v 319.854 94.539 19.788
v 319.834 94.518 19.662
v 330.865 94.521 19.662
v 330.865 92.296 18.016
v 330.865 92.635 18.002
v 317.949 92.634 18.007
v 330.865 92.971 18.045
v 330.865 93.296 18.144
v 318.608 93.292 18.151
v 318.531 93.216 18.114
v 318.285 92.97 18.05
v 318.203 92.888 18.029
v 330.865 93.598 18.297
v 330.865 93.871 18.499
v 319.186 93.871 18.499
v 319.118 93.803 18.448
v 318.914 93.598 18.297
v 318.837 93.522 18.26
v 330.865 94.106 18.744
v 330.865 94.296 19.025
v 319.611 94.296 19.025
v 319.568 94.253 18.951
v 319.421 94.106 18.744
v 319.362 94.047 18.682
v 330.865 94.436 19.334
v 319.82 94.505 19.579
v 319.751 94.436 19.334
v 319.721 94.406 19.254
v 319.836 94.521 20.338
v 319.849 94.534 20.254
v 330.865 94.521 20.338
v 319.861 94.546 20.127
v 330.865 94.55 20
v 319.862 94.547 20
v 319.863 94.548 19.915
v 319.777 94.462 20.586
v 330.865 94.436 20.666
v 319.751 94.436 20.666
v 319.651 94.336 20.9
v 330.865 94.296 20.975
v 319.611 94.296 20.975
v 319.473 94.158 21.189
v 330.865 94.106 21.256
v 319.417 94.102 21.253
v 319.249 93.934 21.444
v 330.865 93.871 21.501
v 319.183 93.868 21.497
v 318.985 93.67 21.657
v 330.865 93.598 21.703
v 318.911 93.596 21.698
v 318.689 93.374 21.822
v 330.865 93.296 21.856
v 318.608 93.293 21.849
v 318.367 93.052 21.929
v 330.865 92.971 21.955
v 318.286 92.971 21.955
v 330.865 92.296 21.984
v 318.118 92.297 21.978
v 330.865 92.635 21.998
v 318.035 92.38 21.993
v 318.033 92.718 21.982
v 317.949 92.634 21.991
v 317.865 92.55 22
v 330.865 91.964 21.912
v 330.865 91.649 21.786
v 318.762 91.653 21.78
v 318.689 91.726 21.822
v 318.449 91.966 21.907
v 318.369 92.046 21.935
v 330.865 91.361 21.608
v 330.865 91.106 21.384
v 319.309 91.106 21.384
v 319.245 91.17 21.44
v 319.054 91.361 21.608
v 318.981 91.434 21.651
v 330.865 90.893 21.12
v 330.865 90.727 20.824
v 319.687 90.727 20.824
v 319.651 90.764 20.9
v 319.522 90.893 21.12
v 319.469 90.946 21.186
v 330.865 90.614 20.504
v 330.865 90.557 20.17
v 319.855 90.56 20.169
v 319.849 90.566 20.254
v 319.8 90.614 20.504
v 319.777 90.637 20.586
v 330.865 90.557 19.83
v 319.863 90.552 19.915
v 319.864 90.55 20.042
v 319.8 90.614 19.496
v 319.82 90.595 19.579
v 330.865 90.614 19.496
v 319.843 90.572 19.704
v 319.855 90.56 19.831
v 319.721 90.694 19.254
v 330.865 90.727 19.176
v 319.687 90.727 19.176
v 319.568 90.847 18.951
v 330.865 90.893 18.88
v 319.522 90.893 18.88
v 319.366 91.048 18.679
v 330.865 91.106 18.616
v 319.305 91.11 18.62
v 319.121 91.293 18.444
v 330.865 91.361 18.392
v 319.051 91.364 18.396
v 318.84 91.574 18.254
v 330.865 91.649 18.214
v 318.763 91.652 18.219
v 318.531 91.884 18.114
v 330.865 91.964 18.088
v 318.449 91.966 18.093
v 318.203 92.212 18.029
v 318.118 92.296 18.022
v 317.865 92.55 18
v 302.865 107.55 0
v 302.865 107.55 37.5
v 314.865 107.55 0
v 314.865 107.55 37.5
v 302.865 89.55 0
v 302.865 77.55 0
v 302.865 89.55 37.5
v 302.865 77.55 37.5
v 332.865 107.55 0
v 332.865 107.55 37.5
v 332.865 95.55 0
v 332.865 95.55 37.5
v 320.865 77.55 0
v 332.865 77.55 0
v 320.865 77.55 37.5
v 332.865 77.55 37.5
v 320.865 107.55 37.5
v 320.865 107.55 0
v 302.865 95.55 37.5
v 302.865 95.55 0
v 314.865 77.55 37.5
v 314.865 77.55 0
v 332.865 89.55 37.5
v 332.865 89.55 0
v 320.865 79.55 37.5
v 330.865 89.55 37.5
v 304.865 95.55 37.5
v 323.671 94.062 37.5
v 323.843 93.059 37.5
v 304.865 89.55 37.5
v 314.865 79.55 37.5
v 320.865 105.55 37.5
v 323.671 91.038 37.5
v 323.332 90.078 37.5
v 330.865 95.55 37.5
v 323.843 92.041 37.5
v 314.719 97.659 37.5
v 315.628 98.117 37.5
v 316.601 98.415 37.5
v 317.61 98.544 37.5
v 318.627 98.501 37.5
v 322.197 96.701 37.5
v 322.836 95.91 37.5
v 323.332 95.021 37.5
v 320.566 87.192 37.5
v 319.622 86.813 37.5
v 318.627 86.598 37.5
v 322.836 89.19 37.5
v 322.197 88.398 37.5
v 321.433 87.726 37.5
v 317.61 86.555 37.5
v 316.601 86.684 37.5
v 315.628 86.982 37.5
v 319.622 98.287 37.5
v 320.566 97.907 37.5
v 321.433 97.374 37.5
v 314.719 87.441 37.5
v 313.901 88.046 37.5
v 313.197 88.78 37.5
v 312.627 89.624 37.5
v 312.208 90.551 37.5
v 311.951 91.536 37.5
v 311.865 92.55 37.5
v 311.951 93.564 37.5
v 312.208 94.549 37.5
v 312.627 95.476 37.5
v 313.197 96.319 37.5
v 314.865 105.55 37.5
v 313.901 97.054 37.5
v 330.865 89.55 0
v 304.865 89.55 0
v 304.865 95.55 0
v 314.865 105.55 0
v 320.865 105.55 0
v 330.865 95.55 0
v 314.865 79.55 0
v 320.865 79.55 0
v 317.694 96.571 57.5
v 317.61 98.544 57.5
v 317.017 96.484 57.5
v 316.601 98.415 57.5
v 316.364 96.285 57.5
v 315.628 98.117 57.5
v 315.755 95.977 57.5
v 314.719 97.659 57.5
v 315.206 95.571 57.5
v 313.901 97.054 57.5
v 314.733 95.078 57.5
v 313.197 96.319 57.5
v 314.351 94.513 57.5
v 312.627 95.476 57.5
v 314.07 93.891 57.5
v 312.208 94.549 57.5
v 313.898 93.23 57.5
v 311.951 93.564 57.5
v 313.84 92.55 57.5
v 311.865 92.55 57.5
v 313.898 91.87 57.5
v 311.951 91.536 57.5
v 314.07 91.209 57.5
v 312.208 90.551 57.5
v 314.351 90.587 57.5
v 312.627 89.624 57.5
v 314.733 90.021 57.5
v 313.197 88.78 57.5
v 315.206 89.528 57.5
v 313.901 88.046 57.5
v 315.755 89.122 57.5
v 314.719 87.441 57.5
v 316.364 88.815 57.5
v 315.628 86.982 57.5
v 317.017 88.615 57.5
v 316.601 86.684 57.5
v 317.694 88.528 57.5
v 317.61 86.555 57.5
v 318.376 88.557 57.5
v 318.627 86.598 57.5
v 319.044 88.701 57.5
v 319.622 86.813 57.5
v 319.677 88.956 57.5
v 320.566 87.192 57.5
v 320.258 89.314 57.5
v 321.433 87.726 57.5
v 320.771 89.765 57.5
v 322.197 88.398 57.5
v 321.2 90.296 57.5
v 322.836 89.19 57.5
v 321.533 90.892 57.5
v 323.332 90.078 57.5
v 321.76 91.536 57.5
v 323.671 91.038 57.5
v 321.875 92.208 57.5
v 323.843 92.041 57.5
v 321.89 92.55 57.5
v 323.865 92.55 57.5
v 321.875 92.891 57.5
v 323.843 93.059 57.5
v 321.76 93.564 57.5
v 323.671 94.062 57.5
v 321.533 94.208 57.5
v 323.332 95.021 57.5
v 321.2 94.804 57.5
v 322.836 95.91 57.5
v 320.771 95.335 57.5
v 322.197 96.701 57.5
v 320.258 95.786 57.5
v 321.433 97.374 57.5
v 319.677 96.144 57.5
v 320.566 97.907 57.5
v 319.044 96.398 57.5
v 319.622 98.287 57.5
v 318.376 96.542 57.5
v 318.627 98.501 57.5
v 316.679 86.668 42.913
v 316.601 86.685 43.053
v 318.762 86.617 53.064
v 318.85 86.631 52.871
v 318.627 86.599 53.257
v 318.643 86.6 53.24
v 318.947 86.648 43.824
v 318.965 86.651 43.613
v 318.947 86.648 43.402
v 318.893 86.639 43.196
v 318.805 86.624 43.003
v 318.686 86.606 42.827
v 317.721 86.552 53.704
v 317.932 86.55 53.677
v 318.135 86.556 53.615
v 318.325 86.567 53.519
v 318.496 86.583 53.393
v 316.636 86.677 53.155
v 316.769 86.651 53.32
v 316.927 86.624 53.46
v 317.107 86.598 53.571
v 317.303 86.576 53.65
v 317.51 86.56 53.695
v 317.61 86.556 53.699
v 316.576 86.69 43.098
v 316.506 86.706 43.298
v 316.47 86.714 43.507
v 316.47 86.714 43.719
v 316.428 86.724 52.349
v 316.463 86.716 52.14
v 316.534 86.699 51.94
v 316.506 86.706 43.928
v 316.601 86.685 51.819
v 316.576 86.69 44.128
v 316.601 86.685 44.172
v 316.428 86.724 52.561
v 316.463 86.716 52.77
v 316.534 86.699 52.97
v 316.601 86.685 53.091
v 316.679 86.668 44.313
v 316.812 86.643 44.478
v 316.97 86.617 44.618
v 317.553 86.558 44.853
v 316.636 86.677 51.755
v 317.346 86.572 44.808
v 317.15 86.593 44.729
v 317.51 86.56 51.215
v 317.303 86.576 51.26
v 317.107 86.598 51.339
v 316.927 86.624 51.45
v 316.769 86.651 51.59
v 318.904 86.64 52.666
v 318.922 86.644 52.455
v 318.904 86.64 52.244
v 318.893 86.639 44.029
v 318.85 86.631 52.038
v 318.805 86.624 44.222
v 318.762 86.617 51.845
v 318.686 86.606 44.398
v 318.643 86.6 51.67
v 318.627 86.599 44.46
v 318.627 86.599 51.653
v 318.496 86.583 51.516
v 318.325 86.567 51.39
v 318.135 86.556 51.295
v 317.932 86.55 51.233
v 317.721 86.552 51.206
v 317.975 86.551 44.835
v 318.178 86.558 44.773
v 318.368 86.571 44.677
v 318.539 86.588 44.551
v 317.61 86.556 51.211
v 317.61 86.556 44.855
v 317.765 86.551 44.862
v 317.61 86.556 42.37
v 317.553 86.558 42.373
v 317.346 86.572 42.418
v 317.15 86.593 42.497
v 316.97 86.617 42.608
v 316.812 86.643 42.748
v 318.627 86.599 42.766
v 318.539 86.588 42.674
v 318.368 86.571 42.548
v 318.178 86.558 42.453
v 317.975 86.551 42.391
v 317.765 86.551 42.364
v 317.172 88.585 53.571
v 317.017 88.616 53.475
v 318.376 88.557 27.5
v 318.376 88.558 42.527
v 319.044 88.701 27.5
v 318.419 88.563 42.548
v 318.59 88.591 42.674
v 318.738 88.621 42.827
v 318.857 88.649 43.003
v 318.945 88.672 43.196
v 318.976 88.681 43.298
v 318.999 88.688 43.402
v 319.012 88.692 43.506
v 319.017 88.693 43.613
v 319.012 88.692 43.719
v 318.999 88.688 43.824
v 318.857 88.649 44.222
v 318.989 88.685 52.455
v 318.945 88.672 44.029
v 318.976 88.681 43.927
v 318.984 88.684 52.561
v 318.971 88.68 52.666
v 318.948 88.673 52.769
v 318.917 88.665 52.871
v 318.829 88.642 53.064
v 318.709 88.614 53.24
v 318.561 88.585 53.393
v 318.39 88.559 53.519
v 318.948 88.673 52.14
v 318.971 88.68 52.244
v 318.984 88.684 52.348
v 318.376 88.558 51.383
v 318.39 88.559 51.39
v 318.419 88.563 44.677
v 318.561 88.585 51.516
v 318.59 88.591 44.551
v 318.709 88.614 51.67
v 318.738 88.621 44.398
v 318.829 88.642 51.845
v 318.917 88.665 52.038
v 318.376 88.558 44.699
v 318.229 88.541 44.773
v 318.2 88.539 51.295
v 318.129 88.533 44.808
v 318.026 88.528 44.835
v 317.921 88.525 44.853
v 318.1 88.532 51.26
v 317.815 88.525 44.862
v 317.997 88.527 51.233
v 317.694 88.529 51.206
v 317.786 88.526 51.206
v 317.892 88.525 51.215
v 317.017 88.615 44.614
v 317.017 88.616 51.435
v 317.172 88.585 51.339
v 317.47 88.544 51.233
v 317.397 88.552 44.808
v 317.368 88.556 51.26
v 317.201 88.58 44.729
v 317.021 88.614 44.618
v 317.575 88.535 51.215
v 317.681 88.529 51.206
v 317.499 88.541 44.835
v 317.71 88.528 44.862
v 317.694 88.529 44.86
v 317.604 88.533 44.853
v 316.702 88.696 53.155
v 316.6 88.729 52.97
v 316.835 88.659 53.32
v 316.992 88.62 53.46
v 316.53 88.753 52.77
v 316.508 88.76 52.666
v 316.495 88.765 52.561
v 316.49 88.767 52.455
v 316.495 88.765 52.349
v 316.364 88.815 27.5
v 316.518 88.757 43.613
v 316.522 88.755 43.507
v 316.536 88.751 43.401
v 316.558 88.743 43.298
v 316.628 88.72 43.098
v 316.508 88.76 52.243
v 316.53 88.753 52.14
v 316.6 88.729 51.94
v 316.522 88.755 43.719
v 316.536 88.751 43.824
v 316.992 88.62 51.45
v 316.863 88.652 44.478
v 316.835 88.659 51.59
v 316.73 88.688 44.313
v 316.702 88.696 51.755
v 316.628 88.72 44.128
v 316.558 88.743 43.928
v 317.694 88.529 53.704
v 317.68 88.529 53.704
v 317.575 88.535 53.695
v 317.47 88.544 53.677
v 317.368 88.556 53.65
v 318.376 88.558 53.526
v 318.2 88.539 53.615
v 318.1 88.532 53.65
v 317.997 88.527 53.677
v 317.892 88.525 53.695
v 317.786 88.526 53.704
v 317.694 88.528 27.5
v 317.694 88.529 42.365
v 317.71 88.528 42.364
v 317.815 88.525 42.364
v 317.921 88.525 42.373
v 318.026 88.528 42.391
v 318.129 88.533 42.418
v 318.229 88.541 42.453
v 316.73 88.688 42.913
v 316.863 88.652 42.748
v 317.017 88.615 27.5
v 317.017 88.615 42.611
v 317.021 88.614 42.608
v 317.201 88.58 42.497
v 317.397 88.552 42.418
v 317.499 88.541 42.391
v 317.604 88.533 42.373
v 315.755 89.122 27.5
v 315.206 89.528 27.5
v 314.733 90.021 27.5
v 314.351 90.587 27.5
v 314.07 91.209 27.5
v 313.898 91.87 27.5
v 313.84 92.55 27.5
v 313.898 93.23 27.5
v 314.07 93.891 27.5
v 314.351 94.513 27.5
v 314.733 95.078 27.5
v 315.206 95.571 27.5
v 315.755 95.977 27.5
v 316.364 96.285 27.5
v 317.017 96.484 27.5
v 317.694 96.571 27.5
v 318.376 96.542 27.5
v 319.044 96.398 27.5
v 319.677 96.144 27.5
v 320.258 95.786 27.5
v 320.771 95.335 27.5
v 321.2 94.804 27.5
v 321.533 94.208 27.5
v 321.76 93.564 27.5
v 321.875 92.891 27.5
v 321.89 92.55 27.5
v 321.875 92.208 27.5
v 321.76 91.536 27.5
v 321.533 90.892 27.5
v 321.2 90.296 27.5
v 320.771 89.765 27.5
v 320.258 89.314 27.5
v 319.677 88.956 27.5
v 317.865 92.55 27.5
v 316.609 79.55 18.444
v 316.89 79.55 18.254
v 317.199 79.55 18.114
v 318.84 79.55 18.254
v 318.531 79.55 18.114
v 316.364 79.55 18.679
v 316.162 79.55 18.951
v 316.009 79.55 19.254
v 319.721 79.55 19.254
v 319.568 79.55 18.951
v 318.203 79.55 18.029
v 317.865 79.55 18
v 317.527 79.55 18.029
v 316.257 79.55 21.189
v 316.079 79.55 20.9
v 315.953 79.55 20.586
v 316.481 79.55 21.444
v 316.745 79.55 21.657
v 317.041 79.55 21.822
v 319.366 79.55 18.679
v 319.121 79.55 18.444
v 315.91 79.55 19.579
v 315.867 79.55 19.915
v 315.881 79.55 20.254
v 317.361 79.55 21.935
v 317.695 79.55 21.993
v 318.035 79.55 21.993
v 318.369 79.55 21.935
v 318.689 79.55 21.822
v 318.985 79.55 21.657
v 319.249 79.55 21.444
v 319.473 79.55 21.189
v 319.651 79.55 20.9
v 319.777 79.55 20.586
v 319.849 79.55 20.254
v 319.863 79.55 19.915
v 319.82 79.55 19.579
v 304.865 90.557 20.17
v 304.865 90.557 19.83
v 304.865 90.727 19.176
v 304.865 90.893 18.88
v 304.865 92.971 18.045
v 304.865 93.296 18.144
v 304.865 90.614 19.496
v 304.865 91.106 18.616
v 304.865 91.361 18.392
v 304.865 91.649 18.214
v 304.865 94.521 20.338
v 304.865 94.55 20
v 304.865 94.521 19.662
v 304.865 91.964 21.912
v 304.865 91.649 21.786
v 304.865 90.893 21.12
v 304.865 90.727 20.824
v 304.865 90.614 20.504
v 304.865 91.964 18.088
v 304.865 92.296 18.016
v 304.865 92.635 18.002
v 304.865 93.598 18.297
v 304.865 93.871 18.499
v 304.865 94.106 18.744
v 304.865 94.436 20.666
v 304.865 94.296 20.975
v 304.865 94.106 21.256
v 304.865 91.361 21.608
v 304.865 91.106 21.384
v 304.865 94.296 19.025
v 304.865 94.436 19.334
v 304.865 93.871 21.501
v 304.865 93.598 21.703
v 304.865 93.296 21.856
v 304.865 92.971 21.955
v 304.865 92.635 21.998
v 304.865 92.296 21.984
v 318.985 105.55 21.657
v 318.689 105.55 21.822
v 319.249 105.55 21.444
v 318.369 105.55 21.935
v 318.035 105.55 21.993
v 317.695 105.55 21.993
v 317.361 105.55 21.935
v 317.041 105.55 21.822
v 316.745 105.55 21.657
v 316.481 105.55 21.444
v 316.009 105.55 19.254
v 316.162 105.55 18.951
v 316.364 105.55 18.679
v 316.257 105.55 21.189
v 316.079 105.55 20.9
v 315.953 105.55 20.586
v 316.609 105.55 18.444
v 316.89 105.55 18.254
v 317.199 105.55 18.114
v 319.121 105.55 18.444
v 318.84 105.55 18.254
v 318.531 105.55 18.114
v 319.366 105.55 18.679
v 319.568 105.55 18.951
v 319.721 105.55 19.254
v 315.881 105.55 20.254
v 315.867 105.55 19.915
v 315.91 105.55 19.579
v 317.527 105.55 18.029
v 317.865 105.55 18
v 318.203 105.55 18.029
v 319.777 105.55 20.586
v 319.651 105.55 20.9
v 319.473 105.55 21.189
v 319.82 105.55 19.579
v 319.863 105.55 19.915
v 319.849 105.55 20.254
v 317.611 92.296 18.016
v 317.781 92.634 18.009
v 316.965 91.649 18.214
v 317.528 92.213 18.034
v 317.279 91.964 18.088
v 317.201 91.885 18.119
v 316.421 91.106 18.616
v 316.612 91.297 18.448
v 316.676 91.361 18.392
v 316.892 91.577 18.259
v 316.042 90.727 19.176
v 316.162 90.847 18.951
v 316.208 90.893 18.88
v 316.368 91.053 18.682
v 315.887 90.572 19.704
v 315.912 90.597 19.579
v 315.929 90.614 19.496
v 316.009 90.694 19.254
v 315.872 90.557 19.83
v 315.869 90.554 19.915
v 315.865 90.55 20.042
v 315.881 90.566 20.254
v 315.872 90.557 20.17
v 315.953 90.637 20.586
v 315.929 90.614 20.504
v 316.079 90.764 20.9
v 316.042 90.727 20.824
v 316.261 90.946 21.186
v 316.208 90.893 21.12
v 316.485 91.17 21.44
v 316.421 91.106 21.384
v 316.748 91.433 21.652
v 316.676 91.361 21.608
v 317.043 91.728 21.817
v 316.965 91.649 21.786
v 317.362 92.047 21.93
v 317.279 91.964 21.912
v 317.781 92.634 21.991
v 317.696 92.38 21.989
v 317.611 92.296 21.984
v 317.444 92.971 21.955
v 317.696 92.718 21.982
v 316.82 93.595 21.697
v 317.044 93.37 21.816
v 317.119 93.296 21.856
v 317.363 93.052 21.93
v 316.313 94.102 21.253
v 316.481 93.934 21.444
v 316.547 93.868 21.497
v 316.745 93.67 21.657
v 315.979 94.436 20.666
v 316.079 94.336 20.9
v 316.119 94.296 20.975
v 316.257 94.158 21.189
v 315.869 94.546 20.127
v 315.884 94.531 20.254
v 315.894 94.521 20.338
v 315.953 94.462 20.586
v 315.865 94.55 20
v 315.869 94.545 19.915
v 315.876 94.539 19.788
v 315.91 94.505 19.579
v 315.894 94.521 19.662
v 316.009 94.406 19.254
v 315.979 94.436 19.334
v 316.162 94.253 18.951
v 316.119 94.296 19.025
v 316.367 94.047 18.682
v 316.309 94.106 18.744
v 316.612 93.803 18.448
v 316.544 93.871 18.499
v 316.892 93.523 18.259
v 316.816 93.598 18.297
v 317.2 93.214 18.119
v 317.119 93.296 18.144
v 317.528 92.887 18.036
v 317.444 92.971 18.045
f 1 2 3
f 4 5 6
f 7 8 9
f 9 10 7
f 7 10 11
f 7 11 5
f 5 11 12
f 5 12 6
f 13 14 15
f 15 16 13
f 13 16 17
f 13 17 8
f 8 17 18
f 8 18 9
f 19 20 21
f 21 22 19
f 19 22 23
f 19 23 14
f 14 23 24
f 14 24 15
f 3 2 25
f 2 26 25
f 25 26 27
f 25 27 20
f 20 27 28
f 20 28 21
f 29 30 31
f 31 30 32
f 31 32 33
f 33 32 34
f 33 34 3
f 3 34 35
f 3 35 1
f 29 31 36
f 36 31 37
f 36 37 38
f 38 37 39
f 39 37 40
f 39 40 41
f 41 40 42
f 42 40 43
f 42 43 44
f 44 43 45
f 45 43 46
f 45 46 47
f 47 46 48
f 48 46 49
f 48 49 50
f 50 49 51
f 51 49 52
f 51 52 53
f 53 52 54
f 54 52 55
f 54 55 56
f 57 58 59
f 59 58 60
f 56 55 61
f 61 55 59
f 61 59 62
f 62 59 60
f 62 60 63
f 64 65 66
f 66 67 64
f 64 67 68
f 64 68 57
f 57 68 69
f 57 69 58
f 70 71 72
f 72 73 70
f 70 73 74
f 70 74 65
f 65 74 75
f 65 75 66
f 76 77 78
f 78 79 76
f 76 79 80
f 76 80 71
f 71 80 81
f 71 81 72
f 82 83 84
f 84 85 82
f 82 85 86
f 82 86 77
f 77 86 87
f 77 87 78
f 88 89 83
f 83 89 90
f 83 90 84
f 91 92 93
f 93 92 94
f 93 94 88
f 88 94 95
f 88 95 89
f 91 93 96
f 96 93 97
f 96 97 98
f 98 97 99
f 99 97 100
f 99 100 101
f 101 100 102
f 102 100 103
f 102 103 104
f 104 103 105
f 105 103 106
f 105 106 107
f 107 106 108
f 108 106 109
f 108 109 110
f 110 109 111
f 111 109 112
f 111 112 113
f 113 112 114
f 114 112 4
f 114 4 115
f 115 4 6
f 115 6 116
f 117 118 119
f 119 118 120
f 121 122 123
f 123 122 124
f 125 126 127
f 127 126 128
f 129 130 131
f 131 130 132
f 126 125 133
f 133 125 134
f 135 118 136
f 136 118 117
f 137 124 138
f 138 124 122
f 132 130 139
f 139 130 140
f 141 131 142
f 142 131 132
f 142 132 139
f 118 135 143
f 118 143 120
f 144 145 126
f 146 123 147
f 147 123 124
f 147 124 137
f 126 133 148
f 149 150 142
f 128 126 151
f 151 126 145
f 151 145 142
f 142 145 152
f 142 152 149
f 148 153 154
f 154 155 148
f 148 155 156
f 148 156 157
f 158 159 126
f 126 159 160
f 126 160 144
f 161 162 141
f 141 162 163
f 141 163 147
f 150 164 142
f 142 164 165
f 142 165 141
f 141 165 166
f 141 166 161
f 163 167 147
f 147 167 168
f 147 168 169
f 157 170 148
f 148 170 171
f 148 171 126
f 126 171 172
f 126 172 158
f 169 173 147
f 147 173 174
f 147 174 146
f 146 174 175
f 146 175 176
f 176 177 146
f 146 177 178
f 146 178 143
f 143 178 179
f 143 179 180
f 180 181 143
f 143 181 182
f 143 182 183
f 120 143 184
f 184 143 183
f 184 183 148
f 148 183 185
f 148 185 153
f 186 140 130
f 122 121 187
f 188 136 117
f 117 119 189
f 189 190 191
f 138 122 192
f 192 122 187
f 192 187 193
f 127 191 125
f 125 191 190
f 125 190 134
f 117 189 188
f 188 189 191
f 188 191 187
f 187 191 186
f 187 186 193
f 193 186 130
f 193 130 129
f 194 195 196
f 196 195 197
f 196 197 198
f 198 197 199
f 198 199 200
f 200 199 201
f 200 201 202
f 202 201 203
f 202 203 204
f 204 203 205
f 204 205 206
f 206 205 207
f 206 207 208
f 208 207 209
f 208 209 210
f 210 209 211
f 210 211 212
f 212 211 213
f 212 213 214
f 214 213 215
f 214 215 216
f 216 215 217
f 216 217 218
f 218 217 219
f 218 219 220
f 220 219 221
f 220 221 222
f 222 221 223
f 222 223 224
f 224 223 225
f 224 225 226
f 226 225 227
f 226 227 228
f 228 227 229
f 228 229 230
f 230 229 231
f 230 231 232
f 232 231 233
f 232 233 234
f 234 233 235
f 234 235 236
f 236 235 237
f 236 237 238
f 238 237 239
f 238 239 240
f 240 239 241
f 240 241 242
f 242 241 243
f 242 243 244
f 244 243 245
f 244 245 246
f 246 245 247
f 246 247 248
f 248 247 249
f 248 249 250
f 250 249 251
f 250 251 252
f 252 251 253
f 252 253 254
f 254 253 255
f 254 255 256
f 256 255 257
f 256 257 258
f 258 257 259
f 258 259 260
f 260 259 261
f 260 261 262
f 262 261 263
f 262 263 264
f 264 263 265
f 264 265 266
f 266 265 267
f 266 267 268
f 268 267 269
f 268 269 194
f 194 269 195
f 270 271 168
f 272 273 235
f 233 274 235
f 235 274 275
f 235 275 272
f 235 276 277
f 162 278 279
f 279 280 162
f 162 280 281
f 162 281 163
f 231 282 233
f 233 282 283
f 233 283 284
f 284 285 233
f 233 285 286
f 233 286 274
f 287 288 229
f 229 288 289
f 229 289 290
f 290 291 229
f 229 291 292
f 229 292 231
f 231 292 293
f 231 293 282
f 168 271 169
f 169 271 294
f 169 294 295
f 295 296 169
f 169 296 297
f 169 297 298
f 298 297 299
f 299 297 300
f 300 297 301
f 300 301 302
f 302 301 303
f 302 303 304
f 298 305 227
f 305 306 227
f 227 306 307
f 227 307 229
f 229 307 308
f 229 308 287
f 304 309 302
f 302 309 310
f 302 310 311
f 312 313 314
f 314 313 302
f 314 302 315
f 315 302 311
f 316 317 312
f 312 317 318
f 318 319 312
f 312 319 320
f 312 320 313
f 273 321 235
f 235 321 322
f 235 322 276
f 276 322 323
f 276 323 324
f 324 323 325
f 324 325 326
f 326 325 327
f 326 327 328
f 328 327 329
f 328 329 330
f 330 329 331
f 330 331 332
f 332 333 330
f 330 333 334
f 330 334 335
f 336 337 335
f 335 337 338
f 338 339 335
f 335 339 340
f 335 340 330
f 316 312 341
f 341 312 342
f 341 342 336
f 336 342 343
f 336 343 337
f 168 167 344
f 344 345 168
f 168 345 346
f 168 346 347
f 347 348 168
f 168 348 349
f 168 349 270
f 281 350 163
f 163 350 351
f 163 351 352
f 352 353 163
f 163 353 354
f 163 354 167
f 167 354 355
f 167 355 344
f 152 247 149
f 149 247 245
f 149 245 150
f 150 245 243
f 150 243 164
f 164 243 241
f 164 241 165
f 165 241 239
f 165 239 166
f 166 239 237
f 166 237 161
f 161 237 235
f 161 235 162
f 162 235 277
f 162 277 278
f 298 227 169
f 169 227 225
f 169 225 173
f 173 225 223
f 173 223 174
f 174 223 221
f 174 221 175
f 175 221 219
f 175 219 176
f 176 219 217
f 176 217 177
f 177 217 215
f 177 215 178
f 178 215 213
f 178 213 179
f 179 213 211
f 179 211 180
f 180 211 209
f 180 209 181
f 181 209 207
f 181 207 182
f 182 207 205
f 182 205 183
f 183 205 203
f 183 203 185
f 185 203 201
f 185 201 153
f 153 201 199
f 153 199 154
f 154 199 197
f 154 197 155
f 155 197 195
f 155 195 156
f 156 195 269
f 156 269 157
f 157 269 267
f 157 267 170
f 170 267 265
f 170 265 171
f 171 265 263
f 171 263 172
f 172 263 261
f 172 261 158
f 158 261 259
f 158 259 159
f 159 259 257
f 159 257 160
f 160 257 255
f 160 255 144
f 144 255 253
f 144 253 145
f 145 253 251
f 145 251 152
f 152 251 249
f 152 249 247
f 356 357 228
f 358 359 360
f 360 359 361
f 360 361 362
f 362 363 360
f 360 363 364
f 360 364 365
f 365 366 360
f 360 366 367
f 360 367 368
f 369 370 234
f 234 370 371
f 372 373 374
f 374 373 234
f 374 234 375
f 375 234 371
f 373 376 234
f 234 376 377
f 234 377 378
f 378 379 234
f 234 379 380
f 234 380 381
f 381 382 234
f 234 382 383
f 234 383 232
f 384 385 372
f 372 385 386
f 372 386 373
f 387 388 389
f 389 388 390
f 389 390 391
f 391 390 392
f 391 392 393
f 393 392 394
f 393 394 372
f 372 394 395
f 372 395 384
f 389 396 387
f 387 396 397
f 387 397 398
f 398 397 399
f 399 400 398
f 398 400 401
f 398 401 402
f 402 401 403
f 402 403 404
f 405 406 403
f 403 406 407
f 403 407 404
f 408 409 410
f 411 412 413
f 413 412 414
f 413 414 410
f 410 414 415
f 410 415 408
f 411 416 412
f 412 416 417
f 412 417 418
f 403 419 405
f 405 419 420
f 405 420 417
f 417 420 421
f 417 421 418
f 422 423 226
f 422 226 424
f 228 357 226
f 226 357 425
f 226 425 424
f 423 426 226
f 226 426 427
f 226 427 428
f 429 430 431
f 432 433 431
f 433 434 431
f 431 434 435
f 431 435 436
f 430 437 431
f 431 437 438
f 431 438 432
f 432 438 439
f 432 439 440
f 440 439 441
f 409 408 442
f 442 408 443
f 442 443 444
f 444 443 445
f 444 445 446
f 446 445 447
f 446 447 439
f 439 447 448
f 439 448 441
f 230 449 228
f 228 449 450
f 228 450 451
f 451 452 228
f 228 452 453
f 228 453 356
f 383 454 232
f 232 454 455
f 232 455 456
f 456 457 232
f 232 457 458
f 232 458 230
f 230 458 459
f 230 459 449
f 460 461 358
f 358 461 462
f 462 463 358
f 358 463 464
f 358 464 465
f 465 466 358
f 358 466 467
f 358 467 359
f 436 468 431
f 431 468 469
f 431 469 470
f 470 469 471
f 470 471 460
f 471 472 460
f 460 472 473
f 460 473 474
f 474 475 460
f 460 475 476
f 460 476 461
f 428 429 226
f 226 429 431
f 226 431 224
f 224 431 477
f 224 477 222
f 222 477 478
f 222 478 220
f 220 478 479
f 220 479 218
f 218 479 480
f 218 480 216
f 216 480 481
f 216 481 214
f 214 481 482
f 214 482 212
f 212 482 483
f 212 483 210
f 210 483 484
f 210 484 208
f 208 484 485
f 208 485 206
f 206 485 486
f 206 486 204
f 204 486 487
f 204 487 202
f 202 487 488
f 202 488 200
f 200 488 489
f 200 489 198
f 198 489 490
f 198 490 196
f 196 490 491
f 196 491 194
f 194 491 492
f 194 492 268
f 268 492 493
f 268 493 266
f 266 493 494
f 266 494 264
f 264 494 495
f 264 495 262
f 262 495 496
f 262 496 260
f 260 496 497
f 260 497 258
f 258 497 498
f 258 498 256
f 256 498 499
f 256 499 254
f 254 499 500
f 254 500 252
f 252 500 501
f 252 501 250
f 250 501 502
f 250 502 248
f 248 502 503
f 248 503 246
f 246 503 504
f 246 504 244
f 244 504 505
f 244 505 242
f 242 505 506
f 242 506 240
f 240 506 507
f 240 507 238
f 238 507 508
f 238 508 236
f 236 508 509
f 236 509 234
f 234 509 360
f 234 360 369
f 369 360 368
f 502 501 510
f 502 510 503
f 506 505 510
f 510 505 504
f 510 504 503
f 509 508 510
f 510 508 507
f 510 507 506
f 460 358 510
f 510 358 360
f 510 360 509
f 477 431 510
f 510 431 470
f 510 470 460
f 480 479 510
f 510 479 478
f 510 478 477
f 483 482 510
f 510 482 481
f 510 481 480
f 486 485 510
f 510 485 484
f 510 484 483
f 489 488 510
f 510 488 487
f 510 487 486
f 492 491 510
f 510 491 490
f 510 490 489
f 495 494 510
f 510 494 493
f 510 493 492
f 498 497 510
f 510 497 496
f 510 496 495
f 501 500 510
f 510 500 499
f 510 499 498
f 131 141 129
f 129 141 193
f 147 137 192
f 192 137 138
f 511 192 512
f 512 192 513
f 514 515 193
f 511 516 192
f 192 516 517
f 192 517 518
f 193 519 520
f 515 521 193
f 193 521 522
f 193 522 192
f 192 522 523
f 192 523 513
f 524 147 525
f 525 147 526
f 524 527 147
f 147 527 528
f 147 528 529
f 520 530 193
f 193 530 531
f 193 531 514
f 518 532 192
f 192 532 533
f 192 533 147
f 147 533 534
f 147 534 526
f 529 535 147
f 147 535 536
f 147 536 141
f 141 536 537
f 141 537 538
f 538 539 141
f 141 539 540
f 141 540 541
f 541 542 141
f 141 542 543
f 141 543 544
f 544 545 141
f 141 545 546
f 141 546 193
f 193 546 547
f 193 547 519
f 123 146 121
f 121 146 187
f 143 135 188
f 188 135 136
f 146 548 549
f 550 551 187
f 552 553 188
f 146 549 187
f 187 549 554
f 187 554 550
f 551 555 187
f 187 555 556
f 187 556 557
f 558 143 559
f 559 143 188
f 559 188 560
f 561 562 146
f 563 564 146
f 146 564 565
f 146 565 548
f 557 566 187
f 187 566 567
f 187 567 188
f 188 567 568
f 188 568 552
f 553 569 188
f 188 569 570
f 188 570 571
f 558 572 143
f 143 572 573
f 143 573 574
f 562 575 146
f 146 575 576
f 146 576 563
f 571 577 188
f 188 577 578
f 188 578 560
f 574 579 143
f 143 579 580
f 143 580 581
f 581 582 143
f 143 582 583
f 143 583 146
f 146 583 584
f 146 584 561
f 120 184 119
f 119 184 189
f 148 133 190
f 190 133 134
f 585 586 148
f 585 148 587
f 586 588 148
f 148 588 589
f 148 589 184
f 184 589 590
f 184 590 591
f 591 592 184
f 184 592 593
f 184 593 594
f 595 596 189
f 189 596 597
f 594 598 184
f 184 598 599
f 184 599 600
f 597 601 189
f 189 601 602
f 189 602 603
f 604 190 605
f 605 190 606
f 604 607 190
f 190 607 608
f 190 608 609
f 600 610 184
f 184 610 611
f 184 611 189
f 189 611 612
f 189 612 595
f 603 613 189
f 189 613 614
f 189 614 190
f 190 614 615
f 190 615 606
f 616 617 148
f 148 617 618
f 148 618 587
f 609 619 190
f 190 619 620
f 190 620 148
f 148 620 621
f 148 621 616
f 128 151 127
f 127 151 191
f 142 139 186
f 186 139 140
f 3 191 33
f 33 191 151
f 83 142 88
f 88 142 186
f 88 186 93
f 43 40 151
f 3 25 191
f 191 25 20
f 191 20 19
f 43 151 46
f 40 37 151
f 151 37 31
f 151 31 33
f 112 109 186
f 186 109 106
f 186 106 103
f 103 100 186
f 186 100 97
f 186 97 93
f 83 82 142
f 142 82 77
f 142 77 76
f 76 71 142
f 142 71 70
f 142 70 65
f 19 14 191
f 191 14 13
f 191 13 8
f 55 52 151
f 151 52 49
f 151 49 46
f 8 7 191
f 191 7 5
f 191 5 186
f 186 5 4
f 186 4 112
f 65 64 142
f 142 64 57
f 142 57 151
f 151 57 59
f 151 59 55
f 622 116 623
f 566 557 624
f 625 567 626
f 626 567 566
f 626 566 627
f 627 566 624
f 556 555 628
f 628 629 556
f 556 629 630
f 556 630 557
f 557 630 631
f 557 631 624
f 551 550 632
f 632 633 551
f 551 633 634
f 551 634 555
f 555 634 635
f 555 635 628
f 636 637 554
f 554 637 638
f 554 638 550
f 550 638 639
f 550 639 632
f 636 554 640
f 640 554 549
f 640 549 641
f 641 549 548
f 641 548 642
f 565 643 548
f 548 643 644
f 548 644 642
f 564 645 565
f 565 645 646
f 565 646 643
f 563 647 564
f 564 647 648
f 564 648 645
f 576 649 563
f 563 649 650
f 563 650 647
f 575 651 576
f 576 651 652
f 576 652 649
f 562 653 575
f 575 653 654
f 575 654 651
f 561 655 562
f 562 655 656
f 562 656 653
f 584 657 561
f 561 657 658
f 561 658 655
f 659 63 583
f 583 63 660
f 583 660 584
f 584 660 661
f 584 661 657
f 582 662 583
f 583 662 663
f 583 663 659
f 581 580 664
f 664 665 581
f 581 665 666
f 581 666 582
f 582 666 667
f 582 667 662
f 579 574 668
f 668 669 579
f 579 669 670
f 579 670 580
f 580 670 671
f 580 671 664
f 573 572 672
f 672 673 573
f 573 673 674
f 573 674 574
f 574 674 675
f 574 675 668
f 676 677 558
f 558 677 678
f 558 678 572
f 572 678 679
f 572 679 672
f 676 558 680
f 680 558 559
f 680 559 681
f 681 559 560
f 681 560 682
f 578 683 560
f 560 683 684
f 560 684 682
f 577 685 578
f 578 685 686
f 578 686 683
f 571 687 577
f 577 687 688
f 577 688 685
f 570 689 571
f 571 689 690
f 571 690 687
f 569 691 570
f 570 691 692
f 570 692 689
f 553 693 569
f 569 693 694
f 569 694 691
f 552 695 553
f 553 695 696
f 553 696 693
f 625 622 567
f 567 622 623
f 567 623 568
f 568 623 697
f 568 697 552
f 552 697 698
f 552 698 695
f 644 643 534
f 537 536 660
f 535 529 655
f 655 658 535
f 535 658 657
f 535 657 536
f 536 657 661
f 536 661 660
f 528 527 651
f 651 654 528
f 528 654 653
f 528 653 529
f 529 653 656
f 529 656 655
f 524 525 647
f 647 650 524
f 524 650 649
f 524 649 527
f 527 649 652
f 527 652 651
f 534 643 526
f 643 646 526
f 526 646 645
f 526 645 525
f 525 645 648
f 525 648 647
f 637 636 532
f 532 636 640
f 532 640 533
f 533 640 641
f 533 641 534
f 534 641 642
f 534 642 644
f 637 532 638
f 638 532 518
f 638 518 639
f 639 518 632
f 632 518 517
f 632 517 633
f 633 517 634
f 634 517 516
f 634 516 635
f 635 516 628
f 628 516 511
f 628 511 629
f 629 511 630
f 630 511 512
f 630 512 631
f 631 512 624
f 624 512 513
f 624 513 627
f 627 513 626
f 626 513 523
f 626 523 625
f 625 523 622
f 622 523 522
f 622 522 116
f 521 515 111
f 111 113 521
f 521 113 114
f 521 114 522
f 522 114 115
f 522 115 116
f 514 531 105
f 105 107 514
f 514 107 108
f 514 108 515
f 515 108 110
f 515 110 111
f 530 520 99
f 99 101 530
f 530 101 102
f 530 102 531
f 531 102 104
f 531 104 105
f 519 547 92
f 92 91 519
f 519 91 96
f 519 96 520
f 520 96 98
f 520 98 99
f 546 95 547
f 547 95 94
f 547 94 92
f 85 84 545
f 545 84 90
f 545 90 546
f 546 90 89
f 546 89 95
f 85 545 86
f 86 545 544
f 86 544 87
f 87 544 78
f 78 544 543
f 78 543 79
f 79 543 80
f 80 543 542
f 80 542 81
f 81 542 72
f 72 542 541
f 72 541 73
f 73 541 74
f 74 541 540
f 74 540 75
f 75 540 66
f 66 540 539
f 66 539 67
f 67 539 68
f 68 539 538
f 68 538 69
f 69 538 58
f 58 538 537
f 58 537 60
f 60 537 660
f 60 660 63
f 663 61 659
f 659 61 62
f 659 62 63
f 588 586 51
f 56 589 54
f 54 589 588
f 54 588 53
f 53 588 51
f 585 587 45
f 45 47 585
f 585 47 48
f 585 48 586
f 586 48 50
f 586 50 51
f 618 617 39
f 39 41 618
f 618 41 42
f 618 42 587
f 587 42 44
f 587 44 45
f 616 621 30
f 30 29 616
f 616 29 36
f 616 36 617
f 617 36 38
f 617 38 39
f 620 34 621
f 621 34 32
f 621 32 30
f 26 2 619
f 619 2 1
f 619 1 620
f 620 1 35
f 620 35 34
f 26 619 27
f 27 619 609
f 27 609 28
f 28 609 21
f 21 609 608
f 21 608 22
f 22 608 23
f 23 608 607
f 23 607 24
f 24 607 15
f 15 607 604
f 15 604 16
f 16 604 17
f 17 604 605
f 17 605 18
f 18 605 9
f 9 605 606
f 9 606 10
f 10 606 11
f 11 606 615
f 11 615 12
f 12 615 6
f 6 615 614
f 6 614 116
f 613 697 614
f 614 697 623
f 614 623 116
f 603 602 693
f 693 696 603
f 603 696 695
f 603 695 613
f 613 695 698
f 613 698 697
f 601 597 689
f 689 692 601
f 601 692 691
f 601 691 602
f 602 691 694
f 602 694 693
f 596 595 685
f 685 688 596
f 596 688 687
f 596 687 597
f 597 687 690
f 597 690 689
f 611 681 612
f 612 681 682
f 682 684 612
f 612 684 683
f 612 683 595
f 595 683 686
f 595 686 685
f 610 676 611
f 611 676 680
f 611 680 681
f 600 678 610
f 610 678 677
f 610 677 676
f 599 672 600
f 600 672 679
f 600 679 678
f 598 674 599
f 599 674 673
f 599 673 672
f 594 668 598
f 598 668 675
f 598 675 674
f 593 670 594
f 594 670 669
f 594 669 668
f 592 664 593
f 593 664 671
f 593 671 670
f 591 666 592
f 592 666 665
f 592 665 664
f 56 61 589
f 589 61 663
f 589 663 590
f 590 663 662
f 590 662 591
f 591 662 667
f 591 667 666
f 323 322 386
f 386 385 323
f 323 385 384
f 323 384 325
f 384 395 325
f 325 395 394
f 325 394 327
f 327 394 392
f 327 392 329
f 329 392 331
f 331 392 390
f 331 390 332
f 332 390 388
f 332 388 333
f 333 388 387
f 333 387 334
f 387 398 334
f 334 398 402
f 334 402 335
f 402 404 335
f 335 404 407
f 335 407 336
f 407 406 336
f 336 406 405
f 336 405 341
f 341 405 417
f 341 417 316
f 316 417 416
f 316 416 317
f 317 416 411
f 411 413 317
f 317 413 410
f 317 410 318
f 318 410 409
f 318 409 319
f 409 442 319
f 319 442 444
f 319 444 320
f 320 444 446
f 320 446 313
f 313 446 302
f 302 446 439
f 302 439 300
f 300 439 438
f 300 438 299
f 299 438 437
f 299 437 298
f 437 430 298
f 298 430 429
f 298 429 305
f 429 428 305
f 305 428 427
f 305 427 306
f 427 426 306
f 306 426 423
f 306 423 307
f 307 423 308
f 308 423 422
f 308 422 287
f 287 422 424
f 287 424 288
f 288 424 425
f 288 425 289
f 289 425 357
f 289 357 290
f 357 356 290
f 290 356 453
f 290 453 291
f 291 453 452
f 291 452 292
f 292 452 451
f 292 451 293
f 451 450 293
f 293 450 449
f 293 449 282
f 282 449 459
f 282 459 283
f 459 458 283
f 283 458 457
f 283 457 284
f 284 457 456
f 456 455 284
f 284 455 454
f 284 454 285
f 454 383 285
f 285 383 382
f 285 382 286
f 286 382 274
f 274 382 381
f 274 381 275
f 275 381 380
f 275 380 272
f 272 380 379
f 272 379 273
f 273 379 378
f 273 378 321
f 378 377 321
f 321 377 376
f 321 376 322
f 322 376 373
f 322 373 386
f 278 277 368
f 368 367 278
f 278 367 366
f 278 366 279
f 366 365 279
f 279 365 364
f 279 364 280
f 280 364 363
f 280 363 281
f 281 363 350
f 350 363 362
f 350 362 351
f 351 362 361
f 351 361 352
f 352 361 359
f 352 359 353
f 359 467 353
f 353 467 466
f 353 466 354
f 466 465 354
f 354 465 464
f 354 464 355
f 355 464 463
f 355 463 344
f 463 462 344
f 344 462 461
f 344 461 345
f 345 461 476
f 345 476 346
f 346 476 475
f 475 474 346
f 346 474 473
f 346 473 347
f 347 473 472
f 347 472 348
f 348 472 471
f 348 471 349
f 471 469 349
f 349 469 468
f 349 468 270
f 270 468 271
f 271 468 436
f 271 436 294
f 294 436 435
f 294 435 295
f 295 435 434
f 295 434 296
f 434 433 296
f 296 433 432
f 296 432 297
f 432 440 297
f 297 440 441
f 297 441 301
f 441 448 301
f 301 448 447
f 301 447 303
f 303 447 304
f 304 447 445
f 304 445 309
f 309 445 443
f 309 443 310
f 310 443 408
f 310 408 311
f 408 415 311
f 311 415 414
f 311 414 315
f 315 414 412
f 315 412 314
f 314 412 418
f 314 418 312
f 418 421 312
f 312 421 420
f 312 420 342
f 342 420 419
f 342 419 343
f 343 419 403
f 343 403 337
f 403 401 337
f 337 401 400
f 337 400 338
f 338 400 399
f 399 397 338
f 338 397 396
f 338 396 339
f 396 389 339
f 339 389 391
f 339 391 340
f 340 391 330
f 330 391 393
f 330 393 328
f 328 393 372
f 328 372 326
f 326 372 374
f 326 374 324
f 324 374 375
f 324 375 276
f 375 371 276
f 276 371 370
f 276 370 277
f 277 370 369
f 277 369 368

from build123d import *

# Parameters (mm, degrees)
SKETCH1_W                           = 30
SKETCH1_H                           = 30
BOSS_EXTRUDE1_DEPTH                 = 37.5
SKETCH2_R                           = 6
SKETCH2_R_2                         = 4.025
BOSS_EXTRUDE2_DEPTH                 = 20
CUT_EXTRUDE1_START                  = -10
SKETCH3_R                           = 4.025
CUT_EXTRUDE1_DEPTH                  = 10
SKETCH4_W                           = 6
SKETCH4_H                           = 75
CUT_EXTRUDE2_DEPTH                  = 2
CIRPATTERN1_COUNT                   = 4
SKETCH5_R                           = 2
CUT_EXTRUDE3_DEPTH                  = 126.128763374
SKETCH6_R                           = 2
CUT_EXTRUDE4_DEPTH                  = 339.953272019
M3X0_5_TAPPED_HOLE1_REACH           = 52.721
M3X0_5_TAPPED_HOLE1_BORE_R          = 1.25
M3X0_5_TAPPED_HOLE1_ON_FACE_2_REACH = 60.509
M3X0_5_TAPPED_HOLE1_BORE_2_R        = 1.25


with BuildPart() as part:
    # Sketch1 → Boss-Extrude1 (new body)
    with BuildSketch(Plane.XY):
        with Locations((317.864943501, 92.549790439)):
            Rectangle(SKETCH1_W, SKETCH1_H)
    extrude(amount=BOSS_EXTRUDE1_DEPTH)

    # Sketch2 → Boss-Extrude2 (add)
    with BuildSketch(Plane.XY.offset(37.5)):
        with Locations(Location((317.864943501, 92.549790439, 0), (0, 0, 180))):
            Circle(SKETCH2_R)
        with Locations((317.864943501, 92.549790439)):
            Circle(SKETCH2_R_2, mode=Mode.SUBTRACT)
    extrude(amount=BOSS_EXTRUDE2_DEPTH)

    # Sketch3 → Cut-Extrude1 (cut)
    with BuildSketch(Plane.XY.offset(37.5).offset(CUT_EXTRUDE1_START)):
        with Locations((317.864943501, 92.549790439)):
            Circle(SKETCH3_R)
    extrude(amount=CUT_EXTRUDE1_DEPTH, mode=Mode.SUBTRACT)

    # Sketch4 → Cut-Extrude2 (cut)
    with BuildSketch(Plane.XZ.offset(-77.549790439)):
        with Locations((317.864943501, 0)):
            Rectangle(SKETCH4_W, SKETCH4_H)
    cut_extrude2 = extrude(amount=-CUT_EXTRUDE2_DEPTH, mode=Mode.SUBTRACT)

    # CirPattern1: Cut-Extrude2 ×4 about axis
    cirpattern1_axis = Axis((317.864943501, 92.549790439, 0), (0, 0, 1))
    for i in range(1, CIRPATTERN1_COUNT):
        add(cut_extrude2.rotate(cirpattern1_axis, i * 360 / CIRPATTERN1_COUNT), mode=Mode.SUBTRACT)

    # Sketch5 → Cut-Extrude3 (cut, through all)
    with BuildSketch(Plane(origin=(330.864943501, 0, 0), x_dir=(0, 0, -1), z_dir=(1, 0, 0))):
        with Locations(Location((-20, 92.549790439, 0), (0, 0, 90))):
            Circle(SKETCH5_R)
    extrude(amount=-CUT_EXTRUDE3_DEPTH, mode=Mode.SUBTRACT)

    # Sketch6 → Cut-Extrude4 (cut, through all)
    with BuildSketch(Plane.XZ.offset(-79.549790439)):
        with Locations(Location((317.864943501, 20, 0), (0, 0, 270))):
            Circle(SKETCH6_R)
    extrude(amount=-CUT_EXTRUDE4_DEPTH, mode=Mode.SUBTRACT)

    # M3x0.5 Tapped Hole1 bore (on position points) → M3x0.5 Tapped Hole1 (cut, up to next)
    with BuildSketch(Plane(origin=(317.711998096, 86.551740114, 43.612753669), x_dir=(-0.99967505419, 0.025490900946, 0), z_dir=(-0.025490900946, -0.99967505419, 0)), mode=Mode.PRIVATE) as m3x0_5_tapped_hole1_sk1:
        Circle(M3X0_5_TAPPED_HOLE1_BORE_R)
    m3x0_5_tapped_hole1_tool1 = extrude(m3x0_5_tapped_hole1_sk1.sketch, amount=-M3X0_5_TAPPED_HOLE1_REACH, mode=Mode.PRIVATE) & part.part
    add(m3x0_5_tapped_hole1_tool1.solids().sort_by_distance((317.711998, 86.55174, 43.612754))[0], mode=Mode.SUBTRACT)

    # M3x0.5 Tapped Hole1 bore 2 (on position points) → M3x0.5 Tapped Hole1 on face 2 (cut, up to next)
    with BuildSketch(Plane(origin=(317.668420808, 86.553009734, 52.454806576), x_dir=(-0.99946344332, 0.032754014528, 0), z_dir=(-0.032754014528, -0.99946344332, 0)), mode=Mode.PRIVATE) as m3x0_5_tapped_hole1_on_face_2_sk1:
        Circle(M3X0_5_TAPPED_HOLE1_BORE_2_R)
    m3x0_5_tapped_hole1_on_face_2_tool1 = extrude(m3x0_5_tapped_hole1_on_face_2_sk1.sketch, amount=-M3X0_5_TAPPED_HOLE1_ON_FACE_2_REACH, mode=Mode.PRIVATE) & part.part
    add(m3x0_5_tapped_hole1_on_face_2_tool1.solids().sort_by_distance((317.668421, 86.55301, 52.454807))[0], mode=Mode.SUBTRACT)


solid = part.part
